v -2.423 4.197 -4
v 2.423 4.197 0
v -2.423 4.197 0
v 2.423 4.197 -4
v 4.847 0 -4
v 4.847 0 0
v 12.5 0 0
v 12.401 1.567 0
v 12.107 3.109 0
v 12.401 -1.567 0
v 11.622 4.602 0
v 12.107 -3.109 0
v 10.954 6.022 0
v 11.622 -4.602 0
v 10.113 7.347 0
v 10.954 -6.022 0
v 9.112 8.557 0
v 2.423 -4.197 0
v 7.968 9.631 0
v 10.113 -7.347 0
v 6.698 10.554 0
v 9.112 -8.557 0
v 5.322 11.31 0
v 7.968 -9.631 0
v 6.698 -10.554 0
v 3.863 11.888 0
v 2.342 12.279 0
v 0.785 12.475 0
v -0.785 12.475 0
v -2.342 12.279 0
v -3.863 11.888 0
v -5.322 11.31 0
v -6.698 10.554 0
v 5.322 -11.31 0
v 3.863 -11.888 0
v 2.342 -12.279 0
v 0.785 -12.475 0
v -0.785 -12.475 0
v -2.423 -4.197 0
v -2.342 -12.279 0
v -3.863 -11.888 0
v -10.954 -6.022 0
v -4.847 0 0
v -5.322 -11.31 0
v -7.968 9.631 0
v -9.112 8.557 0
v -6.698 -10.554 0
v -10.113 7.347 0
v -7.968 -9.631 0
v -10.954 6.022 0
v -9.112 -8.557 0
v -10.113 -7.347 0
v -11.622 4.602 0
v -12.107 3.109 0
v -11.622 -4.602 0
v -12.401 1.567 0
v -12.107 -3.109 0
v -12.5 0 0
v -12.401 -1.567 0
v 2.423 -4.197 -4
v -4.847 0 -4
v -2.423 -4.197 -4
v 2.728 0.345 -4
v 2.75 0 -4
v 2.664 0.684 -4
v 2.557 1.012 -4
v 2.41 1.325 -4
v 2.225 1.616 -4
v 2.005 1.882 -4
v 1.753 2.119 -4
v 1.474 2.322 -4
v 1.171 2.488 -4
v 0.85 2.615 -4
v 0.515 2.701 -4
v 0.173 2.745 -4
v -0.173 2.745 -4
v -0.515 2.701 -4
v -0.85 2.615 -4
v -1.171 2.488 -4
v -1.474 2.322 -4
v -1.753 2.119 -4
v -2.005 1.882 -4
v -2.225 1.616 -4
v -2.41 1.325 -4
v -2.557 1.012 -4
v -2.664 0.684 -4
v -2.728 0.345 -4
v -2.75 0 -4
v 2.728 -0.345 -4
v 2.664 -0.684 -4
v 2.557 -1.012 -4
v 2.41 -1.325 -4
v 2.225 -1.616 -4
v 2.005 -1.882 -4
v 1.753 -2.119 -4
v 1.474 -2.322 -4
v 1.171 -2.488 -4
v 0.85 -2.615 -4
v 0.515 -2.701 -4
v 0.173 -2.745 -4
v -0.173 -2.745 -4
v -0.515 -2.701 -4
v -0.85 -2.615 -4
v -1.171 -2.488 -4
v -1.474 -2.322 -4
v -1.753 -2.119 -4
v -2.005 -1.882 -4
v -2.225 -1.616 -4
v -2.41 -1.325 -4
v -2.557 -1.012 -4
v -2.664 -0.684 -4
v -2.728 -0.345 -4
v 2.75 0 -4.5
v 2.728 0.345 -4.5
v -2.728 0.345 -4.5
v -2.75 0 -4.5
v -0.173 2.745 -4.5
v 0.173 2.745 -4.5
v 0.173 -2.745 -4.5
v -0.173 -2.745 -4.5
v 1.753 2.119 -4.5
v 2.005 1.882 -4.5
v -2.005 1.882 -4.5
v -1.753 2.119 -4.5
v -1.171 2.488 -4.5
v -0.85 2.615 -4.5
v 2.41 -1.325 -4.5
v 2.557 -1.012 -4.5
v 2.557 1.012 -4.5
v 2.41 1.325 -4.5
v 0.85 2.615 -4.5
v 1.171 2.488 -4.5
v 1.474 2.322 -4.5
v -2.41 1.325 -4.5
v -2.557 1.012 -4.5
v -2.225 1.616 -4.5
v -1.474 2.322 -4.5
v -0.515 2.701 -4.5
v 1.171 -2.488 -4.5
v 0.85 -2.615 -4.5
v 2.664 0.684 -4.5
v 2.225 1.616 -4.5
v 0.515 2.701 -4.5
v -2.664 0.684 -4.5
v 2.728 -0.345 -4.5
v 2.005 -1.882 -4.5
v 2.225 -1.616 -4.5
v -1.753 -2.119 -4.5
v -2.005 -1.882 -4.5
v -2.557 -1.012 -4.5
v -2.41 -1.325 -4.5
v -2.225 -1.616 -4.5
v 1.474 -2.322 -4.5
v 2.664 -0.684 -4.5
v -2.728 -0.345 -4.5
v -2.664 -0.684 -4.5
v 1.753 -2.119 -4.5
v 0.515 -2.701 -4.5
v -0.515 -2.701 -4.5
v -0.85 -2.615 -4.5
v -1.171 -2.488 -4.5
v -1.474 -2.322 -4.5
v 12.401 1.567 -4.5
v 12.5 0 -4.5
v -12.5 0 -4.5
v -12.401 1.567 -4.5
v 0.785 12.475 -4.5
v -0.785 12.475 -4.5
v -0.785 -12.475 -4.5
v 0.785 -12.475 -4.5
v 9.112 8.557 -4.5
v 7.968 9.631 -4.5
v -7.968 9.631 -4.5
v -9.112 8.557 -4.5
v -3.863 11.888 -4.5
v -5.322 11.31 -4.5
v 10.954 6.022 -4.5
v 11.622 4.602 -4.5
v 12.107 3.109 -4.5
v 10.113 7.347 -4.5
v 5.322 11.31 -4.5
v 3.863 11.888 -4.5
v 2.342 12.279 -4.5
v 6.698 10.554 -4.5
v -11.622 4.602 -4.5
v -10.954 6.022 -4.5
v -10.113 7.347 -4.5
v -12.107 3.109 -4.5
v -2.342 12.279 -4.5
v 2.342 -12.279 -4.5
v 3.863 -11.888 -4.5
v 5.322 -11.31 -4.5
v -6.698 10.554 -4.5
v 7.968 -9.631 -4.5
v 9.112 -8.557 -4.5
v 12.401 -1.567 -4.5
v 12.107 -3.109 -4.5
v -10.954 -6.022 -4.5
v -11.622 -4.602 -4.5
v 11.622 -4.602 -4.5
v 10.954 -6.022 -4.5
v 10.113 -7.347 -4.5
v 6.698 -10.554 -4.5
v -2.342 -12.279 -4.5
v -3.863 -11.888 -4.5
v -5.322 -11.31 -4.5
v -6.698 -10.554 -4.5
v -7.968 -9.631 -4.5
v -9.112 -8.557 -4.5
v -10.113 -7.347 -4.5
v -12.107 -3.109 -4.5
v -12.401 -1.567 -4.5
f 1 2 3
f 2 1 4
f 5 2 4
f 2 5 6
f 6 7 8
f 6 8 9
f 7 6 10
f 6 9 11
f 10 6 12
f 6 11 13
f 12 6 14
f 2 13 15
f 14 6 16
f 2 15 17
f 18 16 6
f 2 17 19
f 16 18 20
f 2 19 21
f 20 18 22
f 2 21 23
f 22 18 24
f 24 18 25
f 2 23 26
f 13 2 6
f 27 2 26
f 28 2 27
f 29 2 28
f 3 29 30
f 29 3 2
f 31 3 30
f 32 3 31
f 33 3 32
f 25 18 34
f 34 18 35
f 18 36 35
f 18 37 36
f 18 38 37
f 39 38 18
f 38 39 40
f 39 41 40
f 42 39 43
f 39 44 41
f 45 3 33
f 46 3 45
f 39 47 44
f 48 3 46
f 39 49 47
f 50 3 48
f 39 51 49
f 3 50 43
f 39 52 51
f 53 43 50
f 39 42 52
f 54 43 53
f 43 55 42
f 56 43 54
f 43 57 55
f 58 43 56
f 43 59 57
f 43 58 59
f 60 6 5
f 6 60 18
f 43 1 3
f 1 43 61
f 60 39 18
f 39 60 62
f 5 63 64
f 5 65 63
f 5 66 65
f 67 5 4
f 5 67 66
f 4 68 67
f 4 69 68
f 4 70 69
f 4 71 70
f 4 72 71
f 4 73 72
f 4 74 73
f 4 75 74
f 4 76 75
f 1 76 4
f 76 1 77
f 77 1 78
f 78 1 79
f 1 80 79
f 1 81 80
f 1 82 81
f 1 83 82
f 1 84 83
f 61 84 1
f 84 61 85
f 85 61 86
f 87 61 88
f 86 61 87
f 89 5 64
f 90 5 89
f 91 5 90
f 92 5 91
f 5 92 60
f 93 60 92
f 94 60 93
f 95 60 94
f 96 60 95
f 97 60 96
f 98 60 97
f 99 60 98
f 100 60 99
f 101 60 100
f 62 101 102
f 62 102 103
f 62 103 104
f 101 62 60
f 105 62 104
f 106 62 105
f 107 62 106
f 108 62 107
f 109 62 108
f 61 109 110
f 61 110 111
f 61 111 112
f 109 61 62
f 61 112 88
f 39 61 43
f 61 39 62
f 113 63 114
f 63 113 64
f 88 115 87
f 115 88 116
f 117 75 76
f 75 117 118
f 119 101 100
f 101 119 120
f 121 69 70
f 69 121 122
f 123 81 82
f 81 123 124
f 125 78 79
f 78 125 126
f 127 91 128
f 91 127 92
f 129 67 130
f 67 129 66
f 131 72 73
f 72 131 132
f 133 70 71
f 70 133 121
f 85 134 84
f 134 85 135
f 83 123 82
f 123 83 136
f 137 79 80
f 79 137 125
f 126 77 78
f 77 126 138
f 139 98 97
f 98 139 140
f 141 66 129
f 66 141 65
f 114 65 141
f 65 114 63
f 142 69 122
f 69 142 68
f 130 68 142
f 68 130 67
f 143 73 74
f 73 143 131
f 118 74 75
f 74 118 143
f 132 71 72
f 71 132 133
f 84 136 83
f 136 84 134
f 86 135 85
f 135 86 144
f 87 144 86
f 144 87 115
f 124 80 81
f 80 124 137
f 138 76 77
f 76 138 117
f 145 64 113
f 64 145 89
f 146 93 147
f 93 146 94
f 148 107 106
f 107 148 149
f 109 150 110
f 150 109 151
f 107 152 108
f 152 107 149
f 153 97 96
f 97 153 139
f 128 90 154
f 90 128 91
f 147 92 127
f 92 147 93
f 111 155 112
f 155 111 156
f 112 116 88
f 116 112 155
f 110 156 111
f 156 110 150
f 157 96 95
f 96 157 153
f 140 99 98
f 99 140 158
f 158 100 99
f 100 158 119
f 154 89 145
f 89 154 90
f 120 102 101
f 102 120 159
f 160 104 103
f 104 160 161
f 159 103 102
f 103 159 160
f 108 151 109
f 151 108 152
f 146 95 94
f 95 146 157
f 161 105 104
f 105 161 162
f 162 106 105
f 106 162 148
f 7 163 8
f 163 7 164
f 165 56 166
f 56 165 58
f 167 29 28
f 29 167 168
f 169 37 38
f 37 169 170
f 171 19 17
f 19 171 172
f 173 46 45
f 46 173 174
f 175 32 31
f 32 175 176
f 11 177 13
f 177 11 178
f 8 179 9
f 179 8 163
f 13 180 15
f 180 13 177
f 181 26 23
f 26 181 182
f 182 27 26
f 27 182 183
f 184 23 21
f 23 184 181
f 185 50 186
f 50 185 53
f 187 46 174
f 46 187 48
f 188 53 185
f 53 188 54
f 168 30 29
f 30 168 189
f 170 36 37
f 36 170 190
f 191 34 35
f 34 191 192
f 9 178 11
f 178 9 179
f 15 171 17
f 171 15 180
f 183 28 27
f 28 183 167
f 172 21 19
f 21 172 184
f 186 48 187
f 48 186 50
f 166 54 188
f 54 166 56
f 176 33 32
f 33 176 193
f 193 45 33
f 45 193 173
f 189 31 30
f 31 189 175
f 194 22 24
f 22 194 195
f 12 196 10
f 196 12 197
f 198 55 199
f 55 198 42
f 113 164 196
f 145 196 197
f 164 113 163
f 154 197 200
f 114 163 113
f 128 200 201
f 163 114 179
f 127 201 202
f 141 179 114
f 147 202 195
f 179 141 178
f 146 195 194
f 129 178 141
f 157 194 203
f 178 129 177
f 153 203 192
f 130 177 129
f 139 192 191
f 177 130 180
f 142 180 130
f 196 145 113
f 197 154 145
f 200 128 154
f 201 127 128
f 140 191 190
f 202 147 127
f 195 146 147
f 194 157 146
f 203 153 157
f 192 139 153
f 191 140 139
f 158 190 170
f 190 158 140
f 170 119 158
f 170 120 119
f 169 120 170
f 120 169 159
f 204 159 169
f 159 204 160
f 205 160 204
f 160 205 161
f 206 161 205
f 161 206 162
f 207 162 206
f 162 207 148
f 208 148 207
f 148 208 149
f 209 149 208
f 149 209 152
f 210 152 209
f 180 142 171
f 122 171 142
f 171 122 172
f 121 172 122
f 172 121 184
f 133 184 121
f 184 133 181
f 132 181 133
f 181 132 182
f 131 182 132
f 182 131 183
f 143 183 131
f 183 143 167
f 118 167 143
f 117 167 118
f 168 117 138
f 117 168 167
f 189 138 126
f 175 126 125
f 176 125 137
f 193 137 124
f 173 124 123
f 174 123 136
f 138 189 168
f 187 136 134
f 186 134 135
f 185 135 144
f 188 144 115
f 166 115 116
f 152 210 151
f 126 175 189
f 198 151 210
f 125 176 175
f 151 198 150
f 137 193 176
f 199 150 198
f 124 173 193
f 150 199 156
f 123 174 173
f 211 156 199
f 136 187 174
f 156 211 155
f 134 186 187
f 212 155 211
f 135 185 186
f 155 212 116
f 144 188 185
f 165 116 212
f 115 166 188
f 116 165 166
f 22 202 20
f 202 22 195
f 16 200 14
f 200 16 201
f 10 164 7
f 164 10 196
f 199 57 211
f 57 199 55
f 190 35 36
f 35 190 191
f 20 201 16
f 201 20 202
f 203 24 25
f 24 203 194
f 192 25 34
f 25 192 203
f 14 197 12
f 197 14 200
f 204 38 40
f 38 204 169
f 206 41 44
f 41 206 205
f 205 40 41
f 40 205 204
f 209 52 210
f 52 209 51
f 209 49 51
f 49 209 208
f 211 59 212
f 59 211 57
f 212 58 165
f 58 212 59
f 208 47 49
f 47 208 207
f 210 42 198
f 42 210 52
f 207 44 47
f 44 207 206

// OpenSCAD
$fn = 50;


difference() {
	union() {
		translate(v = [0, 0, -4.5000000000]) {
			cylinder(h = 4.5000000000, r = 12.5000000000);
		}
	}
	union() {
		translate(v = [0, 0, 0]) {
			rotate(a = [0, 0, 0]) {
				difference() {
					union() {
						translate(v = [0, 0, -4]) {
							linear_extrude(height = 4) {
								polygon(points = [[4.8468000000, 0.0000000000], [2.4234000000, 4.1974519271], [-2.4234000000, 4.1974519271], [-4.8468000000, 0.0000000000], [-2.4234000000, -4.1974519271], [2.4234000000, -4.1974519271]]);
							}
						}
					}
					union();
				}
			}
		}
		#translate(v = [0, 0, -100.0000000000]) {
			cylinder(h = 200, r = 2.7500000000);
		}
	}
}
